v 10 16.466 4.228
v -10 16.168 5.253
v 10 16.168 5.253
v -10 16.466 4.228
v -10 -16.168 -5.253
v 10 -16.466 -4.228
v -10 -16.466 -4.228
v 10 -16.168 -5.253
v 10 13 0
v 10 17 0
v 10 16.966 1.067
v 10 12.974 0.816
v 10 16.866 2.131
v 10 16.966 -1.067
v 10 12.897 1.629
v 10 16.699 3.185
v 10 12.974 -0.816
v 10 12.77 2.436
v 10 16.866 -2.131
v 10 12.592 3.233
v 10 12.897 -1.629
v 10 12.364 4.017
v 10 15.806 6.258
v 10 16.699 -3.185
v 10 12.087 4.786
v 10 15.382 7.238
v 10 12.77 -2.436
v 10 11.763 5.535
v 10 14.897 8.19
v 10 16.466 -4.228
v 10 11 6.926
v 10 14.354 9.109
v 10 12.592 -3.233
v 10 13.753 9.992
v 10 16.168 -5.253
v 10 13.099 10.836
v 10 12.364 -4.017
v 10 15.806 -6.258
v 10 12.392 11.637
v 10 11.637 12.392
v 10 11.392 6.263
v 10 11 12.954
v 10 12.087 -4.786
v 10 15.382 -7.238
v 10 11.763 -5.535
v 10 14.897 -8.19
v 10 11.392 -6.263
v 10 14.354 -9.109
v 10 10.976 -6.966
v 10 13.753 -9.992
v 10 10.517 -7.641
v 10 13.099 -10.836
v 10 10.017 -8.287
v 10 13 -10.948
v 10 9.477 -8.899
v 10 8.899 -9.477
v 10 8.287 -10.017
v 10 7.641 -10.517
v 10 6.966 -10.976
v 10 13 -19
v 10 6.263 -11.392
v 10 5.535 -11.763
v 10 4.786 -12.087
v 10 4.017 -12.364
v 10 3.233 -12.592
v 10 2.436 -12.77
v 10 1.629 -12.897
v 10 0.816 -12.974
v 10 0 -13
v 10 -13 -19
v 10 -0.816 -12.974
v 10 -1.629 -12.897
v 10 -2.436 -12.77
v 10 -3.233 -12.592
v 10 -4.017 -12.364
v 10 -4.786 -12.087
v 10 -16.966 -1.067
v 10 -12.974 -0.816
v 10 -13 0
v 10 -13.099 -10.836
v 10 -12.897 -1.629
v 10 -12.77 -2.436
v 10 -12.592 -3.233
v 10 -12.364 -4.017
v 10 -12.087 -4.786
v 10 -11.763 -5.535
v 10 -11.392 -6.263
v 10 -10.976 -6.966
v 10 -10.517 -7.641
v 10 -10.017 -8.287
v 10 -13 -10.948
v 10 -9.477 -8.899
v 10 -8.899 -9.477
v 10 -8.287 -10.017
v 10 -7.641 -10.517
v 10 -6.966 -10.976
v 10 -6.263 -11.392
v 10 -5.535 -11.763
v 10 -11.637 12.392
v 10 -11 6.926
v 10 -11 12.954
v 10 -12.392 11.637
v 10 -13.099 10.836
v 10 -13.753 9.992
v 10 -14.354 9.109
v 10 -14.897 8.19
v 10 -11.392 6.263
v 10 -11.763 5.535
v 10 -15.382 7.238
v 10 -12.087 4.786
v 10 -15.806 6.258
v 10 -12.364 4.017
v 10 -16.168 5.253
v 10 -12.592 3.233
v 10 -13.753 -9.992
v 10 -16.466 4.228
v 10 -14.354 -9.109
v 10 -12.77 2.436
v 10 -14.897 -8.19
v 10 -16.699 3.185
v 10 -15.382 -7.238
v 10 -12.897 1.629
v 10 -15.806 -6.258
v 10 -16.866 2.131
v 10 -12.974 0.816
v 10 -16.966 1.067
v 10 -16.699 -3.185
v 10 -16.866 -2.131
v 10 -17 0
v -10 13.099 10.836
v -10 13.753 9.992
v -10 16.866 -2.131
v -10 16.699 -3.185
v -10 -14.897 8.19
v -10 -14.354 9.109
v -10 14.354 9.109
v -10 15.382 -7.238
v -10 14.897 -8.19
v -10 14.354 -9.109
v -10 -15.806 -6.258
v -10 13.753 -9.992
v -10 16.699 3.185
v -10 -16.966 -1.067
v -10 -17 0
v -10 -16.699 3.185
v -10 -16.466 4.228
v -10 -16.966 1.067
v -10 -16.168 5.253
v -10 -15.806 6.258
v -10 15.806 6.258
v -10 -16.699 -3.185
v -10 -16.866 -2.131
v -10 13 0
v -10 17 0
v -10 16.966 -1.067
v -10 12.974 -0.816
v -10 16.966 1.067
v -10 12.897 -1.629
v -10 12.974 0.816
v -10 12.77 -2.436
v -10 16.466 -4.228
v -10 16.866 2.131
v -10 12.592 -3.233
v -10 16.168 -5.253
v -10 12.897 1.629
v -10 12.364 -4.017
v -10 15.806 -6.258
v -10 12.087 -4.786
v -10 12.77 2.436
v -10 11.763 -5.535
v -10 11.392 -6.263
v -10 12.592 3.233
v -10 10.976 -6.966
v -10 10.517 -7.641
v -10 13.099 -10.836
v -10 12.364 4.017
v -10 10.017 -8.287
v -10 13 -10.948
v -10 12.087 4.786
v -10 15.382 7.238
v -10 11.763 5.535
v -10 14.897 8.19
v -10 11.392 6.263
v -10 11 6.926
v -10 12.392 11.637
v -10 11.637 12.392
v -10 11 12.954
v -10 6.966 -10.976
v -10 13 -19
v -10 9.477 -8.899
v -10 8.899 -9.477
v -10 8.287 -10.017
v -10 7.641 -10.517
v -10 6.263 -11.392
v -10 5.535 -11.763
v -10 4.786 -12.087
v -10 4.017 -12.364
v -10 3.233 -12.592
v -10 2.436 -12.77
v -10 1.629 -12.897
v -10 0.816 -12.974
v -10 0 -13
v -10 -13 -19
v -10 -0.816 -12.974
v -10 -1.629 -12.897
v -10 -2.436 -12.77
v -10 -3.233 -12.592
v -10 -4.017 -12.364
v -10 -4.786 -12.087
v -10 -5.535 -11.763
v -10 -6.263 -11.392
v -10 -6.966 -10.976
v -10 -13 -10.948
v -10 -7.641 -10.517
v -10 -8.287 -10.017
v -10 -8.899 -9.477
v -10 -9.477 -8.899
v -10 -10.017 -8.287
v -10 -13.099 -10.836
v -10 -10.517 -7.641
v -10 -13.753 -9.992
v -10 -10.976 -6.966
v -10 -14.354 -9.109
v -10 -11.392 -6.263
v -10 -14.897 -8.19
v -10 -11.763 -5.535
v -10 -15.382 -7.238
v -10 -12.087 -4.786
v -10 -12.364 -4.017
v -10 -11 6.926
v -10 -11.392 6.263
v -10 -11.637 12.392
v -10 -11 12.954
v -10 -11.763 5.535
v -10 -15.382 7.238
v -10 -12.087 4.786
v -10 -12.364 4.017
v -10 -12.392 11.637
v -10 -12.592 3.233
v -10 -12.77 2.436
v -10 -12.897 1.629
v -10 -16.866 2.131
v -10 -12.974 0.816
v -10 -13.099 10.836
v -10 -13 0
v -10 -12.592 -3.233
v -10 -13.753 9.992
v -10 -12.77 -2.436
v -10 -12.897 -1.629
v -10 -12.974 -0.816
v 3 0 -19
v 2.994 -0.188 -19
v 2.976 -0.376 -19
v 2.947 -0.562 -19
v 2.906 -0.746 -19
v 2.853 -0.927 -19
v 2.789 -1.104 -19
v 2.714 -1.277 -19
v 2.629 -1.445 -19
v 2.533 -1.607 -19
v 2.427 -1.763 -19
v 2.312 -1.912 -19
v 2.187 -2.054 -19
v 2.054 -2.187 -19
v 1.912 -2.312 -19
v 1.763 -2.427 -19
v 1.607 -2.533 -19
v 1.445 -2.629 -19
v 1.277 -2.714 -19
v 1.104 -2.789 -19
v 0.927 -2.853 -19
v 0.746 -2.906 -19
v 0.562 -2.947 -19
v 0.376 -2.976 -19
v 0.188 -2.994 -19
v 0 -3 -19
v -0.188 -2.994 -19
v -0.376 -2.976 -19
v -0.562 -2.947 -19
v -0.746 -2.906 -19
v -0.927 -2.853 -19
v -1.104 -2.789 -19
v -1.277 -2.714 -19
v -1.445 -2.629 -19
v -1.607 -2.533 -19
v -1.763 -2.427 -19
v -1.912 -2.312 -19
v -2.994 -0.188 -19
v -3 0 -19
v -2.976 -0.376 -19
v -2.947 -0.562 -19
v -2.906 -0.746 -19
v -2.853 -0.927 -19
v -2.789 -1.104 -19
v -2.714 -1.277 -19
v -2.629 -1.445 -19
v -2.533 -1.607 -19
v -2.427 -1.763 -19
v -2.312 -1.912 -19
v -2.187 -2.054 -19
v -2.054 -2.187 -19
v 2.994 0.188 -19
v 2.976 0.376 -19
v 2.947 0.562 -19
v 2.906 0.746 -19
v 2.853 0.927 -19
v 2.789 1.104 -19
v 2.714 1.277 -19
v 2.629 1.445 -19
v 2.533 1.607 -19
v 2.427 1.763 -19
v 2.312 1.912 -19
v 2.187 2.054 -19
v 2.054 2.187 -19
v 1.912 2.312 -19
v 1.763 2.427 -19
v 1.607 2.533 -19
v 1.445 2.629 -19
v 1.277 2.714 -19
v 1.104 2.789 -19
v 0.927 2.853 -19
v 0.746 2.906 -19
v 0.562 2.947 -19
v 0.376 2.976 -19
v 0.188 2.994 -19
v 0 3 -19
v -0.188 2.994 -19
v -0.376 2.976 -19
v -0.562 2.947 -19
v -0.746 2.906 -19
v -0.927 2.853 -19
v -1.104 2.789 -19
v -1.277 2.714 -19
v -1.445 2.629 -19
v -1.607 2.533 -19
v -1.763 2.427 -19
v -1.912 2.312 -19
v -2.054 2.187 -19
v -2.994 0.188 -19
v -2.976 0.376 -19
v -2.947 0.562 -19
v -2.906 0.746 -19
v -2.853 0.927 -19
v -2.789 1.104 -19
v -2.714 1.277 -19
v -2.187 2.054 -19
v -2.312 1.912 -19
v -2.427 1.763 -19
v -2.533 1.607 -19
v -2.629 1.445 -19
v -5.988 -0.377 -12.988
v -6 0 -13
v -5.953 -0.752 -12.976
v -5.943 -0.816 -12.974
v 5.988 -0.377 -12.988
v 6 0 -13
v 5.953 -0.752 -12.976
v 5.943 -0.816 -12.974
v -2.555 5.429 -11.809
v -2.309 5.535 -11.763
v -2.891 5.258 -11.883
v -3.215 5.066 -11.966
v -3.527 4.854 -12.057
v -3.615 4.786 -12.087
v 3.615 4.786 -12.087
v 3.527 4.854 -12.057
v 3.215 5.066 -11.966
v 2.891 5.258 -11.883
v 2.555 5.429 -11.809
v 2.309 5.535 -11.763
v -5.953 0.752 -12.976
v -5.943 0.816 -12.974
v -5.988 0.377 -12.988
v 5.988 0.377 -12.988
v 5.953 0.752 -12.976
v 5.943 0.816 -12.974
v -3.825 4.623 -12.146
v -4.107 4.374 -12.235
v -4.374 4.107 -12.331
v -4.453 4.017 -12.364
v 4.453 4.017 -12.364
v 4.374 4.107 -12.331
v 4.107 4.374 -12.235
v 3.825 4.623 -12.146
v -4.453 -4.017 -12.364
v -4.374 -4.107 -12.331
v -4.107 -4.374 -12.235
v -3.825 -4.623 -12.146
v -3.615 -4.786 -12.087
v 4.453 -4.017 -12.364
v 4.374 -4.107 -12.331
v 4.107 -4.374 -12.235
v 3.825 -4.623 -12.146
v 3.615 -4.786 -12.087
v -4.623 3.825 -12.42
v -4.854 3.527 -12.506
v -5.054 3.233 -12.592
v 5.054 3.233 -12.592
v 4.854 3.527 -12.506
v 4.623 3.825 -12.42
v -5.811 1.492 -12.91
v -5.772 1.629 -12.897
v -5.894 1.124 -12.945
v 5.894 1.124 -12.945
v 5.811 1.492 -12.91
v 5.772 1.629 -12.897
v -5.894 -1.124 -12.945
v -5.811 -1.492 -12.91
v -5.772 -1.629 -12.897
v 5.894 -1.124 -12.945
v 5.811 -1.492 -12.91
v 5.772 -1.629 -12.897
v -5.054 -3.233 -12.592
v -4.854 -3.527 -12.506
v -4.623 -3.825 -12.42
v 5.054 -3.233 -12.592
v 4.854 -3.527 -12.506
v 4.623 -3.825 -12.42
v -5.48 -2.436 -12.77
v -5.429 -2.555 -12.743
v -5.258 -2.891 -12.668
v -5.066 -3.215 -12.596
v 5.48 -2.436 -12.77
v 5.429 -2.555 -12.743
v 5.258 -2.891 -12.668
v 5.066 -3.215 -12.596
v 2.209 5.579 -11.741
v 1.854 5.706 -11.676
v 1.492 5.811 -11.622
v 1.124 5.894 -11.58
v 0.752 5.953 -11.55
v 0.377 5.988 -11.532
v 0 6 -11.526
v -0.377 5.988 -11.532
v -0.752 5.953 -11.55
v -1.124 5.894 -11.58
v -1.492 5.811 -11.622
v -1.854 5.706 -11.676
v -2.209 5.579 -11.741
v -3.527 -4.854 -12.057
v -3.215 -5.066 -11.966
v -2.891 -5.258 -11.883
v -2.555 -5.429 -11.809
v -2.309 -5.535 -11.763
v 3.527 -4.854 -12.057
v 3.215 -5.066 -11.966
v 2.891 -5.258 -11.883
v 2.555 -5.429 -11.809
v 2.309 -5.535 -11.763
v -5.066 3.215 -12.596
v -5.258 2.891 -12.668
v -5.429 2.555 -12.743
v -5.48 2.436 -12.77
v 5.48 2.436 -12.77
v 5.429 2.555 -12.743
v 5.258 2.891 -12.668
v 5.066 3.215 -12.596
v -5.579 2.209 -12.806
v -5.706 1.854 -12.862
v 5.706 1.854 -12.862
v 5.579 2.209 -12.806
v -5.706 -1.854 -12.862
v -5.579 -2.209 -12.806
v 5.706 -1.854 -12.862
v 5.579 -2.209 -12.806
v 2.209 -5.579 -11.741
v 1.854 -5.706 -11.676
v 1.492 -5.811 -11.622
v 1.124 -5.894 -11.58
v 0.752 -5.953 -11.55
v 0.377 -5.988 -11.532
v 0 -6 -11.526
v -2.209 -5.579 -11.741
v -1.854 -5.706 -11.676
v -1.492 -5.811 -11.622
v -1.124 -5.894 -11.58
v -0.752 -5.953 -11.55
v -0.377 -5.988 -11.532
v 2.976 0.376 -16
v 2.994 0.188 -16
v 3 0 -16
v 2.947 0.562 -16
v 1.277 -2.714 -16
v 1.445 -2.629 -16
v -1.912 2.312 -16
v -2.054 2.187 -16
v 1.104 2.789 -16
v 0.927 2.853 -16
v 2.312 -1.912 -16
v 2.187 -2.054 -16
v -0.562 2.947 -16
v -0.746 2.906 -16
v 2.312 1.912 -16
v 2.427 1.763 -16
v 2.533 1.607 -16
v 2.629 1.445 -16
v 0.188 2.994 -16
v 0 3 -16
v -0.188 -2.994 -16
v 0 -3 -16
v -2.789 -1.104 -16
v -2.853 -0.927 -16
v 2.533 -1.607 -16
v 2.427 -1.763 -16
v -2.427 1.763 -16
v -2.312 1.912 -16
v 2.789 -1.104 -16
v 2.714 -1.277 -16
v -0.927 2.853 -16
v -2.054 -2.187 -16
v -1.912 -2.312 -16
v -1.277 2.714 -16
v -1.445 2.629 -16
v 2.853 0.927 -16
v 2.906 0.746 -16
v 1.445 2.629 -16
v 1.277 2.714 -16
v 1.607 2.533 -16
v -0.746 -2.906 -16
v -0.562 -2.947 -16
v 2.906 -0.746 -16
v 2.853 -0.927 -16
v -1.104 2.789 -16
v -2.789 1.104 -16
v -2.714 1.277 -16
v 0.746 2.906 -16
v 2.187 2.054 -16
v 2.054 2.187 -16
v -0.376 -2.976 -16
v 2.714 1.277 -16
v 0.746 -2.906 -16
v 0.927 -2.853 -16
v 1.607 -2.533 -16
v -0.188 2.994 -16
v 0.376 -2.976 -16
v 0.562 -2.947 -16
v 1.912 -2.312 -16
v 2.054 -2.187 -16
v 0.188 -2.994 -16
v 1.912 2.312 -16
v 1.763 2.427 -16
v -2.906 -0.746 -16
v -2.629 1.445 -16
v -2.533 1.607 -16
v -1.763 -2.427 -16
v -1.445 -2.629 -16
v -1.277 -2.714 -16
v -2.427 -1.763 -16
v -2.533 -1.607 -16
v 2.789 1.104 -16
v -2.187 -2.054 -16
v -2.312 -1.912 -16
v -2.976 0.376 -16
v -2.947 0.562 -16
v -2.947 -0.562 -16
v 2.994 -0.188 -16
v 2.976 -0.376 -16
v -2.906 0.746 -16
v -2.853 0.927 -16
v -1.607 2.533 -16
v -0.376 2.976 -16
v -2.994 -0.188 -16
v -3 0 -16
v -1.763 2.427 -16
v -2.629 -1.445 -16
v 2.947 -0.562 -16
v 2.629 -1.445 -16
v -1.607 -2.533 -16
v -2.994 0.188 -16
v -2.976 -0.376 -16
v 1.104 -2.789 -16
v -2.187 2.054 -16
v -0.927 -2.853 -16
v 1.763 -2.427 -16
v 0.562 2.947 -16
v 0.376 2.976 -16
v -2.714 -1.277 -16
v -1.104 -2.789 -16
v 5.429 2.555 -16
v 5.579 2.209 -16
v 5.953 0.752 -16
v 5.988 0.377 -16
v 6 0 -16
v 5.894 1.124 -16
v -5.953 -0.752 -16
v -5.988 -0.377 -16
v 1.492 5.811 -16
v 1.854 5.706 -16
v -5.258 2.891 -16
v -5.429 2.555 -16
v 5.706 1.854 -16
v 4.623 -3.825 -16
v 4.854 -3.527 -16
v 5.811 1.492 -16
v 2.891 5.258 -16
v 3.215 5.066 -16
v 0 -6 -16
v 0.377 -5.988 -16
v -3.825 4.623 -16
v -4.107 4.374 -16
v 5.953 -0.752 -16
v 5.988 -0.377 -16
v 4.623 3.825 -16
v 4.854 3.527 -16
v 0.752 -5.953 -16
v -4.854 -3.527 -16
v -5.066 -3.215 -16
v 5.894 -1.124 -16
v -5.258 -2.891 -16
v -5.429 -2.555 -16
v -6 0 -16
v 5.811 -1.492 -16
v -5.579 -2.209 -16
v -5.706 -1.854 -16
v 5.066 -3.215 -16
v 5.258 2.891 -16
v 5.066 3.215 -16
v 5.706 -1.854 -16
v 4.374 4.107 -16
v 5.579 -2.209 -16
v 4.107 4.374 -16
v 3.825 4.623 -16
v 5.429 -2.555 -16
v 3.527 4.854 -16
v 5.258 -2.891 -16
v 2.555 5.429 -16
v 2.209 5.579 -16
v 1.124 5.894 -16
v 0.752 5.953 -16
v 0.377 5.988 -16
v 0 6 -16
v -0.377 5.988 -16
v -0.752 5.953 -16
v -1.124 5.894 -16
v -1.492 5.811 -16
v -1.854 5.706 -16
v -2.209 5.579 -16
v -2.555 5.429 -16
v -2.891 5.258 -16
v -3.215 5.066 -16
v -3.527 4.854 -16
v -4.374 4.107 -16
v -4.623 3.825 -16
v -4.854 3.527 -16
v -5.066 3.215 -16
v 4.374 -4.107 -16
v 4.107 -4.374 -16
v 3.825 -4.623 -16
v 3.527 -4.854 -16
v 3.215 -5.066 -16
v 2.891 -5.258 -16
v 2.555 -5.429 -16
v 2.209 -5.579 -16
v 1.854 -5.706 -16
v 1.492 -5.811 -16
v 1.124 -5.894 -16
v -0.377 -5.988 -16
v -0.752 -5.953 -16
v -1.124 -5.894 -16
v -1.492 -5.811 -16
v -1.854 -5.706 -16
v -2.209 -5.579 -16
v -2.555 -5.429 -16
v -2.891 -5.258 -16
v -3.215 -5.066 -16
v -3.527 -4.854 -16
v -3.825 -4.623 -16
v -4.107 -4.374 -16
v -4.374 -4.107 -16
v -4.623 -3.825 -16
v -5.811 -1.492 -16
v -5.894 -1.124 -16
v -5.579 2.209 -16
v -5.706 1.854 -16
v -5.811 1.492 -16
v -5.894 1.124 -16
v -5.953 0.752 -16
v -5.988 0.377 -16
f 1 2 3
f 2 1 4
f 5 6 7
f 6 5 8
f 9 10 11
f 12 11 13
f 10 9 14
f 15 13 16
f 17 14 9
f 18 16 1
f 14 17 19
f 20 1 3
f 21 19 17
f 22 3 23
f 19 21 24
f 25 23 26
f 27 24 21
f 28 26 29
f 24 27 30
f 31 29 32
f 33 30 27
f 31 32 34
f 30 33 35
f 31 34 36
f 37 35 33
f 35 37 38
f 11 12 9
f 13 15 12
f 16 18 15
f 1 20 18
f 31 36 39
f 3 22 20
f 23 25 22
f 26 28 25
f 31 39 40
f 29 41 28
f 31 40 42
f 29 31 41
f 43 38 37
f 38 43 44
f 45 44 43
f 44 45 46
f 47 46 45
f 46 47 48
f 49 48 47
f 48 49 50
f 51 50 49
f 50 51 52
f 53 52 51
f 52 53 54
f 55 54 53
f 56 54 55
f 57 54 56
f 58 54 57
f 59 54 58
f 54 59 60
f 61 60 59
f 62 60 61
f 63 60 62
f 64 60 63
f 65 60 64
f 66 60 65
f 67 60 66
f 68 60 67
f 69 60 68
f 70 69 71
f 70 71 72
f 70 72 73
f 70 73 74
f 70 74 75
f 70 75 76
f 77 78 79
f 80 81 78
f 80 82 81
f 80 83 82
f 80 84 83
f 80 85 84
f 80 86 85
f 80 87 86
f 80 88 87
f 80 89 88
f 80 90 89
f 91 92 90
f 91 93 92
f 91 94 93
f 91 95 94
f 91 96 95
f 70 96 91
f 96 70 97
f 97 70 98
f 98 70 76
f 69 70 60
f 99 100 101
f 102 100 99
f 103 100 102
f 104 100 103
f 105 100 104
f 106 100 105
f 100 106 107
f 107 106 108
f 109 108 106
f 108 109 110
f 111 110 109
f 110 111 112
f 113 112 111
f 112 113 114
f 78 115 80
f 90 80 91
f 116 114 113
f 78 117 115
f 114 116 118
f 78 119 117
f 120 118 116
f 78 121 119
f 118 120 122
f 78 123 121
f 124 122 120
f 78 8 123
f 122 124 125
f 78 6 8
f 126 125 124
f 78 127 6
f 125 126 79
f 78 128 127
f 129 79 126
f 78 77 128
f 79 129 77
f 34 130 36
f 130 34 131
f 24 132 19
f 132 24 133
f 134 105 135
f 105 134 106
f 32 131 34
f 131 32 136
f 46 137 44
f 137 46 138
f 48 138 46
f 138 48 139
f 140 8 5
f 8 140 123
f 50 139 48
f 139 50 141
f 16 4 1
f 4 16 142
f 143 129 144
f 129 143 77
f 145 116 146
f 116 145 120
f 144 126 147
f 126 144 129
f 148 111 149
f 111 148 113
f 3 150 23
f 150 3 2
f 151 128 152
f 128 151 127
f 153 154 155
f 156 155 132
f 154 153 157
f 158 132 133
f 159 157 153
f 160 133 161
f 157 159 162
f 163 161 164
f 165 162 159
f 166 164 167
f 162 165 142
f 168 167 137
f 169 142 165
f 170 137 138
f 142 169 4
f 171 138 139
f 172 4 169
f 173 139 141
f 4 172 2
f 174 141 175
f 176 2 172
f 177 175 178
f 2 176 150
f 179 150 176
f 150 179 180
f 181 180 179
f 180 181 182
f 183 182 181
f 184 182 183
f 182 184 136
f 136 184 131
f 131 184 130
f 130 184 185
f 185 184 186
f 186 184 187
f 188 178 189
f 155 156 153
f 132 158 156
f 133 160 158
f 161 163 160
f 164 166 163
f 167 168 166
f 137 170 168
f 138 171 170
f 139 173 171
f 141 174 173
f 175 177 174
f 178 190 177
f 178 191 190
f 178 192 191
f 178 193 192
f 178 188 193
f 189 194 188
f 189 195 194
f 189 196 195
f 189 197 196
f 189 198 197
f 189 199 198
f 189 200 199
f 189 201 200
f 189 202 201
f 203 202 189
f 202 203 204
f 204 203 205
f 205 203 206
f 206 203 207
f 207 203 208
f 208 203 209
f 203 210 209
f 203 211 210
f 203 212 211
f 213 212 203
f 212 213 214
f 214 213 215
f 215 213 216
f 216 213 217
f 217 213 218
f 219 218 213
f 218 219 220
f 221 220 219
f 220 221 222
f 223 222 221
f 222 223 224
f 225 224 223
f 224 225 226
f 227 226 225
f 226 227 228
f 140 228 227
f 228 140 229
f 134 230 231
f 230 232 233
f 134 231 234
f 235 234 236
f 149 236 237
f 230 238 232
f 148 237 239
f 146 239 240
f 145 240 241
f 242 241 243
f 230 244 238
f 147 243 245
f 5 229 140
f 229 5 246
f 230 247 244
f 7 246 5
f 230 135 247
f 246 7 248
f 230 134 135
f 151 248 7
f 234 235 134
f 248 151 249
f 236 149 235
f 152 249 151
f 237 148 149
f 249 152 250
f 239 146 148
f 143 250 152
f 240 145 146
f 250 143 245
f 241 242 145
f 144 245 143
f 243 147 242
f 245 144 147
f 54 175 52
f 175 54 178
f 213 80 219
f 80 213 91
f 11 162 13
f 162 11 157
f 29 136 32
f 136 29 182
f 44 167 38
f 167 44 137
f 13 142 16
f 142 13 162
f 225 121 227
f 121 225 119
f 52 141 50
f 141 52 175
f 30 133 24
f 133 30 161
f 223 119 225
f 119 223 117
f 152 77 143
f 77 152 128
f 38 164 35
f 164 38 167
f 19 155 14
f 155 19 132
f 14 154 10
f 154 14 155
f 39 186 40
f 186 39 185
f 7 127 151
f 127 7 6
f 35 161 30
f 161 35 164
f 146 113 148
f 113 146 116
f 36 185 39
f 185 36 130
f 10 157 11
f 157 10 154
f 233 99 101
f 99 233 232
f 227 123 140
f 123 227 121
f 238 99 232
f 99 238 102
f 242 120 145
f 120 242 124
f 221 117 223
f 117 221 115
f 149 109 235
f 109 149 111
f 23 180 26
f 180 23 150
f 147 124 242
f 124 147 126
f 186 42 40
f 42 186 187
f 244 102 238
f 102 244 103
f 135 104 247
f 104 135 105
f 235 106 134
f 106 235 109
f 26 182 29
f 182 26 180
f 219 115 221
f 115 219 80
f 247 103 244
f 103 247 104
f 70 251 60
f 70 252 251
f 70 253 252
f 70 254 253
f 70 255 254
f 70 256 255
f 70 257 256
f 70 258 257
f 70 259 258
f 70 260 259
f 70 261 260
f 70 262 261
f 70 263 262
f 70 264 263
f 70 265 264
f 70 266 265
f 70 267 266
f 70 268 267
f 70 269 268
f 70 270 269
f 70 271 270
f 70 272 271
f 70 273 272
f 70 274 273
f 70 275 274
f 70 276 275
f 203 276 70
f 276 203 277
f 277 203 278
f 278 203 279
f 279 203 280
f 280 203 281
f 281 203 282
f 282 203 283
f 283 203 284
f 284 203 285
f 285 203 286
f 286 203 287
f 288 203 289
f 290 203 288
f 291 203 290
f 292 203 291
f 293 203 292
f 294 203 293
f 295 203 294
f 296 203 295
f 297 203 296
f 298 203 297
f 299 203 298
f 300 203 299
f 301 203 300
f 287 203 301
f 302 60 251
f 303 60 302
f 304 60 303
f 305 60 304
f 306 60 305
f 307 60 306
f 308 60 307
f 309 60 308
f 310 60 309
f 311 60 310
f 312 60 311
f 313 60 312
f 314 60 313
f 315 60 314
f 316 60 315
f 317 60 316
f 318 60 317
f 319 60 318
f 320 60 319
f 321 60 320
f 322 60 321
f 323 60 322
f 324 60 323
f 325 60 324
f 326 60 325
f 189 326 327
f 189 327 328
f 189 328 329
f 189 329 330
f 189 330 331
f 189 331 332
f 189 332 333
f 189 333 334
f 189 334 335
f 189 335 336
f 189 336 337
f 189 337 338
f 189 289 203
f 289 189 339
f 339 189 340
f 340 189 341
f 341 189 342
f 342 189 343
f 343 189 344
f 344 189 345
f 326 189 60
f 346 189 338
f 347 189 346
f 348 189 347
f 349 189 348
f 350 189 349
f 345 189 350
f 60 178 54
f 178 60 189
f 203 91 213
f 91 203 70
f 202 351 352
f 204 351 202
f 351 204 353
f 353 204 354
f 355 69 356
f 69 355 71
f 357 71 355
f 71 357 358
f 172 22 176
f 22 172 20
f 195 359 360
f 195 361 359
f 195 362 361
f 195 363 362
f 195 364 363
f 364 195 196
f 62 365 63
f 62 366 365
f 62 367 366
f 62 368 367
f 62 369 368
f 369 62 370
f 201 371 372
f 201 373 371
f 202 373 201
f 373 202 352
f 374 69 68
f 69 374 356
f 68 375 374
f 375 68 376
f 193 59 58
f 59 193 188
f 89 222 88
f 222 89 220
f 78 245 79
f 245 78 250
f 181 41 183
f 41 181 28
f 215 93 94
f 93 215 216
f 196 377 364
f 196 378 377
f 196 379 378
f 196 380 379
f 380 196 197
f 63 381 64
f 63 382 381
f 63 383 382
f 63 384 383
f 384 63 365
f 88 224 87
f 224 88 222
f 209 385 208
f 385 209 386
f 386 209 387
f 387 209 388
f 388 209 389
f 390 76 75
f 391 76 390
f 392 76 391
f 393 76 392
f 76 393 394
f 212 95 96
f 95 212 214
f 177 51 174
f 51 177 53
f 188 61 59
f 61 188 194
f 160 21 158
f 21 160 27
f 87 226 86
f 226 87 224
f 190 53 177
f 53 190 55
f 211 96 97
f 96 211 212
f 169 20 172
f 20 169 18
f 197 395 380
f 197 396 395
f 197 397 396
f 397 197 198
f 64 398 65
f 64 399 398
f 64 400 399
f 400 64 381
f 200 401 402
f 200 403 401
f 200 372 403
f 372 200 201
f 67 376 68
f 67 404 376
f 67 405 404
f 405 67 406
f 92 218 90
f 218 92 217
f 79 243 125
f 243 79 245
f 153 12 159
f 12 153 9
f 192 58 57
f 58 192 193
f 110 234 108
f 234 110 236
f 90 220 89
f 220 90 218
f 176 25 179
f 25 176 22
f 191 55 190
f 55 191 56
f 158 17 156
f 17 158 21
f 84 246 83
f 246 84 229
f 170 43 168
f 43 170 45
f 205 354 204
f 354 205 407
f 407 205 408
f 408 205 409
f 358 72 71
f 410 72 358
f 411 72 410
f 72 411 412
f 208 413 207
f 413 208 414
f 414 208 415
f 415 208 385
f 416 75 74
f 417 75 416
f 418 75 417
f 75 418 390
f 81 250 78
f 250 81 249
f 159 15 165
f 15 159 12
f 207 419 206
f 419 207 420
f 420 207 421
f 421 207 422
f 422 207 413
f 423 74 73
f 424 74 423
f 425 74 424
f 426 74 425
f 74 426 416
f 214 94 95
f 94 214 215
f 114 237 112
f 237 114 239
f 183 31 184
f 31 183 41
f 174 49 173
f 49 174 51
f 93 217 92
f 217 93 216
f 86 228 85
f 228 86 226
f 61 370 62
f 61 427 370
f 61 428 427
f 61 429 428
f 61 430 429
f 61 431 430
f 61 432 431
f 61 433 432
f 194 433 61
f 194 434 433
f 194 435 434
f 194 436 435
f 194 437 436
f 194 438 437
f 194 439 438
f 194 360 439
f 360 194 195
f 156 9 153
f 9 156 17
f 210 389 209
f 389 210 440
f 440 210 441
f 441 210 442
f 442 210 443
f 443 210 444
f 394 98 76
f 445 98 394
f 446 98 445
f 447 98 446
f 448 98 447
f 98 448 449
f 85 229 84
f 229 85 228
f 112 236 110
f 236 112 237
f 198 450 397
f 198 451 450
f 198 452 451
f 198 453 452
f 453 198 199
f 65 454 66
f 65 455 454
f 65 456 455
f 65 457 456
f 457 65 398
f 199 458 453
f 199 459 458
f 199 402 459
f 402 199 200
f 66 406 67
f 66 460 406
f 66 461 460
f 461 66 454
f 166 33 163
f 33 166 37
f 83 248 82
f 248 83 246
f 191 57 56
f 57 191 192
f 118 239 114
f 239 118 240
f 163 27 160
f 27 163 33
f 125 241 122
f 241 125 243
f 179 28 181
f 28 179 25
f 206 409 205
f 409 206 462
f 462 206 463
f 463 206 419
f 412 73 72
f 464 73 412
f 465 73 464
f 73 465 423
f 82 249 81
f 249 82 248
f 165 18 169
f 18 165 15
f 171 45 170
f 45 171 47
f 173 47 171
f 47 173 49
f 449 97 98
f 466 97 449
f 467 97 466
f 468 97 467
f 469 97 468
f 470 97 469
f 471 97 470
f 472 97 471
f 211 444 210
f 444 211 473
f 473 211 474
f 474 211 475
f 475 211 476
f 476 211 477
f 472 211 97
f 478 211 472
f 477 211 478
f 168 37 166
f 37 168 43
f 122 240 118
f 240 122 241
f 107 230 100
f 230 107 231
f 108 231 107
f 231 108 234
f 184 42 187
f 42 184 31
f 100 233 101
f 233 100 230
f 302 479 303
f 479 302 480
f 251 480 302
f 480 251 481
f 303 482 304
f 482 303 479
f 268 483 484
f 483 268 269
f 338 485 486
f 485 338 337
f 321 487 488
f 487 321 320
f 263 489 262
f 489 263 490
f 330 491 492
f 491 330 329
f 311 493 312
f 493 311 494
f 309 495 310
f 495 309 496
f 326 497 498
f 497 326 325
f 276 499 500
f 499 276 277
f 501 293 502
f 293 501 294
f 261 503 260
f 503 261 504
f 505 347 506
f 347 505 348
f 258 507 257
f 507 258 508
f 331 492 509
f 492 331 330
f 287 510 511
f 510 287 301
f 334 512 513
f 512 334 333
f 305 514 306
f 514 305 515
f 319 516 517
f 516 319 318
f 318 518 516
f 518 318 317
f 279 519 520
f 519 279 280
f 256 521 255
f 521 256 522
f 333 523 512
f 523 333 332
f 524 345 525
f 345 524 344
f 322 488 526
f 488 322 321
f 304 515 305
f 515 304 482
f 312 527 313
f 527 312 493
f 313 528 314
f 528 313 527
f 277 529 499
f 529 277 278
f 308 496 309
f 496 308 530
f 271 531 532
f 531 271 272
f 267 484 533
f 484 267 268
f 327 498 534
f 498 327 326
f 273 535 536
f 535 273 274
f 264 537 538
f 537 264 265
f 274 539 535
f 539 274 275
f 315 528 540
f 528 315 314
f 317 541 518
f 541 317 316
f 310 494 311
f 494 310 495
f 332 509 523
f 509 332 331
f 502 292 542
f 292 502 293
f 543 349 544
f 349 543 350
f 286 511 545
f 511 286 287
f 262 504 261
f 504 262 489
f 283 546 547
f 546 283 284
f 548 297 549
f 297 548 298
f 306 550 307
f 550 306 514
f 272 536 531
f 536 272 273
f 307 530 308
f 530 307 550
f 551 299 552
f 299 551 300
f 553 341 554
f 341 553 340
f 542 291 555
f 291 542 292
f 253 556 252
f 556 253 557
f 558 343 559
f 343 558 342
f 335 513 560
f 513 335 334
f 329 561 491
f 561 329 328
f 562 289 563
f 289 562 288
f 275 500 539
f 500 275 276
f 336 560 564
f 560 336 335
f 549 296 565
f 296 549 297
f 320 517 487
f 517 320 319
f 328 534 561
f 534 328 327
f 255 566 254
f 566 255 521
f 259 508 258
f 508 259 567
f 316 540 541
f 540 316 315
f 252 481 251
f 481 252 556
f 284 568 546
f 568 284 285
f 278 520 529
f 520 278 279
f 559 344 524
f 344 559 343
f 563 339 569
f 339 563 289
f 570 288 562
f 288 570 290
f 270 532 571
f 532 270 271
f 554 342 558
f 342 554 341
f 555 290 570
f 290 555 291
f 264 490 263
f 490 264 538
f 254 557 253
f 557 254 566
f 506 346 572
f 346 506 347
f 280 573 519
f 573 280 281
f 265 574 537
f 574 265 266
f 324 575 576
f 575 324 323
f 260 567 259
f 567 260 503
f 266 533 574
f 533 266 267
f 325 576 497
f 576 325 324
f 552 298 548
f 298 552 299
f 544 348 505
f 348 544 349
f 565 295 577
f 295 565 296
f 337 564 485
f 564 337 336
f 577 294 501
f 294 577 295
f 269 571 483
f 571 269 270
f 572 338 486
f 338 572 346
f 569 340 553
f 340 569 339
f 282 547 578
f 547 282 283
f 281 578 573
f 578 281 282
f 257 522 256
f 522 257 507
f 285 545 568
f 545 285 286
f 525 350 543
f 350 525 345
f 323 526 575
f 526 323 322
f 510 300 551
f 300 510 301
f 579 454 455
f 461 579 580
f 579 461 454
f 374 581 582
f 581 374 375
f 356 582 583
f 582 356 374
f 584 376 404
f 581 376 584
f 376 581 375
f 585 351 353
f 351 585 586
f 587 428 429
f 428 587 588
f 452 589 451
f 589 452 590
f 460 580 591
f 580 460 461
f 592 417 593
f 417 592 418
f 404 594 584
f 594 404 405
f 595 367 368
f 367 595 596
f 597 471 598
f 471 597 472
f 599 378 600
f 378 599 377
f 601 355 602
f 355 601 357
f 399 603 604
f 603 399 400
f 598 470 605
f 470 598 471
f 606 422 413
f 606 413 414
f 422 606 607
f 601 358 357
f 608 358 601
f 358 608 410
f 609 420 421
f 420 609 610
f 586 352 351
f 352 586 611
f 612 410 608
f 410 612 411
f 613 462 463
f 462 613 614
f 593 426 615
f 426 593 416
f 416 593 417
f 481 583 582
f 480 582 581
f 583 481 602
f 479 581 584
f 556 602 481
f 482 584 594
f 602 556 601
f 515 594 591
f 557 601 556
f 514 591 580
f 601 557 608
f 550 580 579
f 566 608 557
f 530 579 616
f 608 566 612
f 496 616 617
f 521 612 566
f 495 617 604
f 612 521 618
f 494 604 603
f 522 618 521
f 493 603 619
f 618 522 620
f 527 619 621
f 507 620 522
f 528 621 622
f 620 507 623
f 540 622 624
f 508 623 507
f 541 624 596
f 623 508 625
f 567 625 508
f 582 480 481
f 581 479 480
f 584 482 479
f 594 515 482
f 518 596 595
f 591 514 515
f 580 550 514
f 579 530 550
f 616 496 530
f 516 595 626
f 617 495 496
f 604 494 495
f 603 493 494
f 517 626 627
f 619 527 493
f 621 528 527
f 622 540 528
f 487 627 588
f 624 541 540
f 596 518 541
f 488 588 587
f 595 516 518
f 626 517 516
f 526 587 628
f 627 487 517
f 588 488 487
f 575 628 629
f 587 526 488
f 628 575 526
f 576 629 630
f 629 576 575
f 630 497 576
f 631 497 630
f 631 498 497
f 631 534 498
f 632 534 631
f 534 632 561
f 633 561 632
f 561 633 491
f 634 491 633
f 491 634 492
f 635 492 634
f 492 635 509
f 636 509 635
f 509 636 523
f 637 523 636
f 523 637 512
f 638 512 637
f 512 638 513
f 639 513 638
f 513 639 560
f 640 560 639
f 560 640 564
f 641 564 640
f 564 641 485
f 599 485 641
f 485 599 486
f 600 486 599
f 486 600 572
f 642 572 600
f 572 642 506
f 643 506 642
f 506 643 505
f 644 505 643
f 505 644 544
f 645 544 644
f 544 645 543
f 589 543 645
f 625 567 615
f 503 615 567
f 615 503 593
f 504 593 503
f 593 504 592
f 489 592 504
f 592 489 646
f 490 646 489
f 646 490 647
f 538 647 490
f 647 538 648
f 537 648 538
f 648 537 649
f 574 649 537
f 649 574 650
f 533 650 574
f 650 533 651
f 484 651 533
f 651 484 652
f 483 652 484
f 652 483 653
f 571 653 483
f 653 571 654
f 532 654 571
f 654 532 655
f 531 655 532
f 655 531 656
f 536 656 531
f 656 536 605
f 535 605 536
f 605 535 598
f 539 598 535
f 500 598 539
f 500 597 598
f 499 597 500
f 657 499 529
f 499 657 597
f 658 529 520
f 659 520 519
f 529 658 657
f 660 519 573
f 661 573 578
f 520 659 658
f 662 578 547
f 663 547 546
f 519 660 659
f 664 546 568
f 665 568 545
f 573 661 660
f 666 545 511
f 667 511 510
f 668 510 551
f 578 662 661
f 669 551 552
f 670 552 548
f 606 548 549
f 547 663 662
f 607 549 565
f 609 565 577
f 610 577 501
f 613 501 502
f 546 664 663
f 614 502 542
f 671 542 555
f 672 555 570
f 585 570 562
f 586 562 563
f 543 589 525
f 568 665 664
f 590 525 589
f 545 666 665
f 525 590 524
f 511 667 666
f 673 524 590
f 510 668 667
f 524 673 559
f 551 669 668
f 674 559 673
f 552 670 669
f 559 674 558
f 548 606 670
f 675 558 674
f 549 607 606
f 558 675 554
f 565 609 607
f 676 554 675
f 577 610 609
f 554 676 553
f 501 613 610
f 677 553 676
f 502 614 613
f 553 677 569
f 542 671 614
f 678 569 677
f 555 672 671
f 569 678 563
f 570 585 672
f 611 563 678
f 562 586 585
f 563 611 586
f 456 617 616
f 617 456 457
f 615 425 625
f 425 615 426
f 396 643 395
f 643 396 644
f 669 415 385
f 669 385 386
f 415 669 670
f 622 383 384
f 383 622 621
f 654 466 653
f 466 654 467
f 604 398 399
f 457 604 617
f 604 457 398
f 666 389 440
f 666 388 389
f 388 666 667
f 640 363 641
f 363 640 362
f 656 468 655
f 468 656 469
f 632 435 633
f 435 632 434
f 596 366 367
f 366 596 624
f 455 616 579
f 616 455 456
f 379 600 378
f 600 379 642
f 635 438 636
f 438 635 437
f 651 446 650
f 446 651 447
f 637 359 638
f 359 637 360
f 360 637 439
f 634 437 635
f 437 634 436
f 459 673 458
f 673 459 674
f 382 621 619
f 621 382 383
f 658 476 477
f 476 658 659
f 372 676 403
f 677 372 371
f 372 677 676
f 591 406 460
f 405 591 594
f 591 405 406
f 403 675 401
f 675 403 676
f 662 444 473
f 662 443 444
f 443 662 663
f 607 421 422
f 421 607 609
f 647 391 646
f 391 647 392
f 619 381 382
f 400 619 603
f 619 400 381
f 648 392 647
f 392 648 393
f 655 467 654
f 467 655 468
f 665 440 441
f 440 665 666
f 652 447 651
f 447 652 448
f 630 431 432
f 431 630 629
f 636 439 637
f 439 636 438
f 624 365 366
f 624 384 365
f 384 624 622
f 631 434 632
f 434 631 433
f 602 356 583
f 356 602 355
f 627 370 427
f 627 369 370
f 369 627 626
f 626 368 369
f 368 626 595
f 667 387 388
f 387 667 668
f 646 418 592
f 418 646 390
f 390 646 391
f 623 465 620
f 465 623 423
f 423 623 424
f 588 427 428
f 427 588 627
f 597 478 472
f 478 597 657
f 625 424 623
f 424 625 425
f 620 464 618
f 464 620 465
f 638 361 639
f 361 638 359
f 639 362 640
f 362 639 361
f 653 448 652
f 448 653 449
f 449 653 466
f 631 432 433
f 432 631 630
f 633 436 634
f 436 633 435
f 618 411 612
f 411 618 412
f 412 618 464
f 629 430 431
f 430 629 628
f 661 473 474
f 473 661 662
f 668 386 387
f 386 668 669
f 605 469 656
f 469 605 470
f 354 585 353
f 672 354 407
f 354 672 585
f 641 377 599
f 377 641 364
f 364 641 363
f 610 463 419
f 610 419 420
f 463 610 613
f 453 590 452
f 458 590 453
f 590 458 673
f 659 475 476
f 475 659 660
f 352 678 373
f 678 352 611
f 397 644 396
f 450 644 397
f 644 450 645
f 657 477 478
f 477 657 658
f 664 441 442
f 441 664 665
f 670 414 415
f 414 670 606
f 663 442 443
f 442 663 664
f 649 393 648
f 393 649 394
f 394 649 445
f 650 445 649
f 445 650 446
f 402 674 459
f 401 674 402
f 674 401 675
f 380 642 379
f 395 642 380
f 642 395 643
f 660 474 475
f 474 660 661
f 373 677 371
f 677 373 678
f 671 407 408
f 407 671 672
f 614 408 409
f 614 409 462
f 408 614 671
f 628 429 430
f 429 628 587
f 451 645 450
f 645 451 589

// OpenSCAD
$fn=100;

DBlade=26;  // Blade diameter in mm
DWall=4;    // Wall thickness
Length=20;

difference() {
    union() {
        rotate([0,90,0]) cylinder(h=Length,d=DBlade+2*DWall,center=true);
        translate([0,0,-(DBlade/2+DWall)/2-2]) cube([Length,DBlade,DBlade/2+DWall], center=true);
    }
    rotate([0,90,0]) cylinder(h=2*Length,d=DBlade,center=true);                                     // The Blade
    translate([0,0,(DBlade/2+DWall)/2]) cube([2*Length,DBlade-DWall,DBlade/2+DWall], center=true);  // Opening
    cylinder(h=2*DBlade,d=6,center=true);                           // Screw hole
    translate([0,0,-3]) cylinder(h=DBlade,d=2*6,center=true);       // Screw head hole
}
